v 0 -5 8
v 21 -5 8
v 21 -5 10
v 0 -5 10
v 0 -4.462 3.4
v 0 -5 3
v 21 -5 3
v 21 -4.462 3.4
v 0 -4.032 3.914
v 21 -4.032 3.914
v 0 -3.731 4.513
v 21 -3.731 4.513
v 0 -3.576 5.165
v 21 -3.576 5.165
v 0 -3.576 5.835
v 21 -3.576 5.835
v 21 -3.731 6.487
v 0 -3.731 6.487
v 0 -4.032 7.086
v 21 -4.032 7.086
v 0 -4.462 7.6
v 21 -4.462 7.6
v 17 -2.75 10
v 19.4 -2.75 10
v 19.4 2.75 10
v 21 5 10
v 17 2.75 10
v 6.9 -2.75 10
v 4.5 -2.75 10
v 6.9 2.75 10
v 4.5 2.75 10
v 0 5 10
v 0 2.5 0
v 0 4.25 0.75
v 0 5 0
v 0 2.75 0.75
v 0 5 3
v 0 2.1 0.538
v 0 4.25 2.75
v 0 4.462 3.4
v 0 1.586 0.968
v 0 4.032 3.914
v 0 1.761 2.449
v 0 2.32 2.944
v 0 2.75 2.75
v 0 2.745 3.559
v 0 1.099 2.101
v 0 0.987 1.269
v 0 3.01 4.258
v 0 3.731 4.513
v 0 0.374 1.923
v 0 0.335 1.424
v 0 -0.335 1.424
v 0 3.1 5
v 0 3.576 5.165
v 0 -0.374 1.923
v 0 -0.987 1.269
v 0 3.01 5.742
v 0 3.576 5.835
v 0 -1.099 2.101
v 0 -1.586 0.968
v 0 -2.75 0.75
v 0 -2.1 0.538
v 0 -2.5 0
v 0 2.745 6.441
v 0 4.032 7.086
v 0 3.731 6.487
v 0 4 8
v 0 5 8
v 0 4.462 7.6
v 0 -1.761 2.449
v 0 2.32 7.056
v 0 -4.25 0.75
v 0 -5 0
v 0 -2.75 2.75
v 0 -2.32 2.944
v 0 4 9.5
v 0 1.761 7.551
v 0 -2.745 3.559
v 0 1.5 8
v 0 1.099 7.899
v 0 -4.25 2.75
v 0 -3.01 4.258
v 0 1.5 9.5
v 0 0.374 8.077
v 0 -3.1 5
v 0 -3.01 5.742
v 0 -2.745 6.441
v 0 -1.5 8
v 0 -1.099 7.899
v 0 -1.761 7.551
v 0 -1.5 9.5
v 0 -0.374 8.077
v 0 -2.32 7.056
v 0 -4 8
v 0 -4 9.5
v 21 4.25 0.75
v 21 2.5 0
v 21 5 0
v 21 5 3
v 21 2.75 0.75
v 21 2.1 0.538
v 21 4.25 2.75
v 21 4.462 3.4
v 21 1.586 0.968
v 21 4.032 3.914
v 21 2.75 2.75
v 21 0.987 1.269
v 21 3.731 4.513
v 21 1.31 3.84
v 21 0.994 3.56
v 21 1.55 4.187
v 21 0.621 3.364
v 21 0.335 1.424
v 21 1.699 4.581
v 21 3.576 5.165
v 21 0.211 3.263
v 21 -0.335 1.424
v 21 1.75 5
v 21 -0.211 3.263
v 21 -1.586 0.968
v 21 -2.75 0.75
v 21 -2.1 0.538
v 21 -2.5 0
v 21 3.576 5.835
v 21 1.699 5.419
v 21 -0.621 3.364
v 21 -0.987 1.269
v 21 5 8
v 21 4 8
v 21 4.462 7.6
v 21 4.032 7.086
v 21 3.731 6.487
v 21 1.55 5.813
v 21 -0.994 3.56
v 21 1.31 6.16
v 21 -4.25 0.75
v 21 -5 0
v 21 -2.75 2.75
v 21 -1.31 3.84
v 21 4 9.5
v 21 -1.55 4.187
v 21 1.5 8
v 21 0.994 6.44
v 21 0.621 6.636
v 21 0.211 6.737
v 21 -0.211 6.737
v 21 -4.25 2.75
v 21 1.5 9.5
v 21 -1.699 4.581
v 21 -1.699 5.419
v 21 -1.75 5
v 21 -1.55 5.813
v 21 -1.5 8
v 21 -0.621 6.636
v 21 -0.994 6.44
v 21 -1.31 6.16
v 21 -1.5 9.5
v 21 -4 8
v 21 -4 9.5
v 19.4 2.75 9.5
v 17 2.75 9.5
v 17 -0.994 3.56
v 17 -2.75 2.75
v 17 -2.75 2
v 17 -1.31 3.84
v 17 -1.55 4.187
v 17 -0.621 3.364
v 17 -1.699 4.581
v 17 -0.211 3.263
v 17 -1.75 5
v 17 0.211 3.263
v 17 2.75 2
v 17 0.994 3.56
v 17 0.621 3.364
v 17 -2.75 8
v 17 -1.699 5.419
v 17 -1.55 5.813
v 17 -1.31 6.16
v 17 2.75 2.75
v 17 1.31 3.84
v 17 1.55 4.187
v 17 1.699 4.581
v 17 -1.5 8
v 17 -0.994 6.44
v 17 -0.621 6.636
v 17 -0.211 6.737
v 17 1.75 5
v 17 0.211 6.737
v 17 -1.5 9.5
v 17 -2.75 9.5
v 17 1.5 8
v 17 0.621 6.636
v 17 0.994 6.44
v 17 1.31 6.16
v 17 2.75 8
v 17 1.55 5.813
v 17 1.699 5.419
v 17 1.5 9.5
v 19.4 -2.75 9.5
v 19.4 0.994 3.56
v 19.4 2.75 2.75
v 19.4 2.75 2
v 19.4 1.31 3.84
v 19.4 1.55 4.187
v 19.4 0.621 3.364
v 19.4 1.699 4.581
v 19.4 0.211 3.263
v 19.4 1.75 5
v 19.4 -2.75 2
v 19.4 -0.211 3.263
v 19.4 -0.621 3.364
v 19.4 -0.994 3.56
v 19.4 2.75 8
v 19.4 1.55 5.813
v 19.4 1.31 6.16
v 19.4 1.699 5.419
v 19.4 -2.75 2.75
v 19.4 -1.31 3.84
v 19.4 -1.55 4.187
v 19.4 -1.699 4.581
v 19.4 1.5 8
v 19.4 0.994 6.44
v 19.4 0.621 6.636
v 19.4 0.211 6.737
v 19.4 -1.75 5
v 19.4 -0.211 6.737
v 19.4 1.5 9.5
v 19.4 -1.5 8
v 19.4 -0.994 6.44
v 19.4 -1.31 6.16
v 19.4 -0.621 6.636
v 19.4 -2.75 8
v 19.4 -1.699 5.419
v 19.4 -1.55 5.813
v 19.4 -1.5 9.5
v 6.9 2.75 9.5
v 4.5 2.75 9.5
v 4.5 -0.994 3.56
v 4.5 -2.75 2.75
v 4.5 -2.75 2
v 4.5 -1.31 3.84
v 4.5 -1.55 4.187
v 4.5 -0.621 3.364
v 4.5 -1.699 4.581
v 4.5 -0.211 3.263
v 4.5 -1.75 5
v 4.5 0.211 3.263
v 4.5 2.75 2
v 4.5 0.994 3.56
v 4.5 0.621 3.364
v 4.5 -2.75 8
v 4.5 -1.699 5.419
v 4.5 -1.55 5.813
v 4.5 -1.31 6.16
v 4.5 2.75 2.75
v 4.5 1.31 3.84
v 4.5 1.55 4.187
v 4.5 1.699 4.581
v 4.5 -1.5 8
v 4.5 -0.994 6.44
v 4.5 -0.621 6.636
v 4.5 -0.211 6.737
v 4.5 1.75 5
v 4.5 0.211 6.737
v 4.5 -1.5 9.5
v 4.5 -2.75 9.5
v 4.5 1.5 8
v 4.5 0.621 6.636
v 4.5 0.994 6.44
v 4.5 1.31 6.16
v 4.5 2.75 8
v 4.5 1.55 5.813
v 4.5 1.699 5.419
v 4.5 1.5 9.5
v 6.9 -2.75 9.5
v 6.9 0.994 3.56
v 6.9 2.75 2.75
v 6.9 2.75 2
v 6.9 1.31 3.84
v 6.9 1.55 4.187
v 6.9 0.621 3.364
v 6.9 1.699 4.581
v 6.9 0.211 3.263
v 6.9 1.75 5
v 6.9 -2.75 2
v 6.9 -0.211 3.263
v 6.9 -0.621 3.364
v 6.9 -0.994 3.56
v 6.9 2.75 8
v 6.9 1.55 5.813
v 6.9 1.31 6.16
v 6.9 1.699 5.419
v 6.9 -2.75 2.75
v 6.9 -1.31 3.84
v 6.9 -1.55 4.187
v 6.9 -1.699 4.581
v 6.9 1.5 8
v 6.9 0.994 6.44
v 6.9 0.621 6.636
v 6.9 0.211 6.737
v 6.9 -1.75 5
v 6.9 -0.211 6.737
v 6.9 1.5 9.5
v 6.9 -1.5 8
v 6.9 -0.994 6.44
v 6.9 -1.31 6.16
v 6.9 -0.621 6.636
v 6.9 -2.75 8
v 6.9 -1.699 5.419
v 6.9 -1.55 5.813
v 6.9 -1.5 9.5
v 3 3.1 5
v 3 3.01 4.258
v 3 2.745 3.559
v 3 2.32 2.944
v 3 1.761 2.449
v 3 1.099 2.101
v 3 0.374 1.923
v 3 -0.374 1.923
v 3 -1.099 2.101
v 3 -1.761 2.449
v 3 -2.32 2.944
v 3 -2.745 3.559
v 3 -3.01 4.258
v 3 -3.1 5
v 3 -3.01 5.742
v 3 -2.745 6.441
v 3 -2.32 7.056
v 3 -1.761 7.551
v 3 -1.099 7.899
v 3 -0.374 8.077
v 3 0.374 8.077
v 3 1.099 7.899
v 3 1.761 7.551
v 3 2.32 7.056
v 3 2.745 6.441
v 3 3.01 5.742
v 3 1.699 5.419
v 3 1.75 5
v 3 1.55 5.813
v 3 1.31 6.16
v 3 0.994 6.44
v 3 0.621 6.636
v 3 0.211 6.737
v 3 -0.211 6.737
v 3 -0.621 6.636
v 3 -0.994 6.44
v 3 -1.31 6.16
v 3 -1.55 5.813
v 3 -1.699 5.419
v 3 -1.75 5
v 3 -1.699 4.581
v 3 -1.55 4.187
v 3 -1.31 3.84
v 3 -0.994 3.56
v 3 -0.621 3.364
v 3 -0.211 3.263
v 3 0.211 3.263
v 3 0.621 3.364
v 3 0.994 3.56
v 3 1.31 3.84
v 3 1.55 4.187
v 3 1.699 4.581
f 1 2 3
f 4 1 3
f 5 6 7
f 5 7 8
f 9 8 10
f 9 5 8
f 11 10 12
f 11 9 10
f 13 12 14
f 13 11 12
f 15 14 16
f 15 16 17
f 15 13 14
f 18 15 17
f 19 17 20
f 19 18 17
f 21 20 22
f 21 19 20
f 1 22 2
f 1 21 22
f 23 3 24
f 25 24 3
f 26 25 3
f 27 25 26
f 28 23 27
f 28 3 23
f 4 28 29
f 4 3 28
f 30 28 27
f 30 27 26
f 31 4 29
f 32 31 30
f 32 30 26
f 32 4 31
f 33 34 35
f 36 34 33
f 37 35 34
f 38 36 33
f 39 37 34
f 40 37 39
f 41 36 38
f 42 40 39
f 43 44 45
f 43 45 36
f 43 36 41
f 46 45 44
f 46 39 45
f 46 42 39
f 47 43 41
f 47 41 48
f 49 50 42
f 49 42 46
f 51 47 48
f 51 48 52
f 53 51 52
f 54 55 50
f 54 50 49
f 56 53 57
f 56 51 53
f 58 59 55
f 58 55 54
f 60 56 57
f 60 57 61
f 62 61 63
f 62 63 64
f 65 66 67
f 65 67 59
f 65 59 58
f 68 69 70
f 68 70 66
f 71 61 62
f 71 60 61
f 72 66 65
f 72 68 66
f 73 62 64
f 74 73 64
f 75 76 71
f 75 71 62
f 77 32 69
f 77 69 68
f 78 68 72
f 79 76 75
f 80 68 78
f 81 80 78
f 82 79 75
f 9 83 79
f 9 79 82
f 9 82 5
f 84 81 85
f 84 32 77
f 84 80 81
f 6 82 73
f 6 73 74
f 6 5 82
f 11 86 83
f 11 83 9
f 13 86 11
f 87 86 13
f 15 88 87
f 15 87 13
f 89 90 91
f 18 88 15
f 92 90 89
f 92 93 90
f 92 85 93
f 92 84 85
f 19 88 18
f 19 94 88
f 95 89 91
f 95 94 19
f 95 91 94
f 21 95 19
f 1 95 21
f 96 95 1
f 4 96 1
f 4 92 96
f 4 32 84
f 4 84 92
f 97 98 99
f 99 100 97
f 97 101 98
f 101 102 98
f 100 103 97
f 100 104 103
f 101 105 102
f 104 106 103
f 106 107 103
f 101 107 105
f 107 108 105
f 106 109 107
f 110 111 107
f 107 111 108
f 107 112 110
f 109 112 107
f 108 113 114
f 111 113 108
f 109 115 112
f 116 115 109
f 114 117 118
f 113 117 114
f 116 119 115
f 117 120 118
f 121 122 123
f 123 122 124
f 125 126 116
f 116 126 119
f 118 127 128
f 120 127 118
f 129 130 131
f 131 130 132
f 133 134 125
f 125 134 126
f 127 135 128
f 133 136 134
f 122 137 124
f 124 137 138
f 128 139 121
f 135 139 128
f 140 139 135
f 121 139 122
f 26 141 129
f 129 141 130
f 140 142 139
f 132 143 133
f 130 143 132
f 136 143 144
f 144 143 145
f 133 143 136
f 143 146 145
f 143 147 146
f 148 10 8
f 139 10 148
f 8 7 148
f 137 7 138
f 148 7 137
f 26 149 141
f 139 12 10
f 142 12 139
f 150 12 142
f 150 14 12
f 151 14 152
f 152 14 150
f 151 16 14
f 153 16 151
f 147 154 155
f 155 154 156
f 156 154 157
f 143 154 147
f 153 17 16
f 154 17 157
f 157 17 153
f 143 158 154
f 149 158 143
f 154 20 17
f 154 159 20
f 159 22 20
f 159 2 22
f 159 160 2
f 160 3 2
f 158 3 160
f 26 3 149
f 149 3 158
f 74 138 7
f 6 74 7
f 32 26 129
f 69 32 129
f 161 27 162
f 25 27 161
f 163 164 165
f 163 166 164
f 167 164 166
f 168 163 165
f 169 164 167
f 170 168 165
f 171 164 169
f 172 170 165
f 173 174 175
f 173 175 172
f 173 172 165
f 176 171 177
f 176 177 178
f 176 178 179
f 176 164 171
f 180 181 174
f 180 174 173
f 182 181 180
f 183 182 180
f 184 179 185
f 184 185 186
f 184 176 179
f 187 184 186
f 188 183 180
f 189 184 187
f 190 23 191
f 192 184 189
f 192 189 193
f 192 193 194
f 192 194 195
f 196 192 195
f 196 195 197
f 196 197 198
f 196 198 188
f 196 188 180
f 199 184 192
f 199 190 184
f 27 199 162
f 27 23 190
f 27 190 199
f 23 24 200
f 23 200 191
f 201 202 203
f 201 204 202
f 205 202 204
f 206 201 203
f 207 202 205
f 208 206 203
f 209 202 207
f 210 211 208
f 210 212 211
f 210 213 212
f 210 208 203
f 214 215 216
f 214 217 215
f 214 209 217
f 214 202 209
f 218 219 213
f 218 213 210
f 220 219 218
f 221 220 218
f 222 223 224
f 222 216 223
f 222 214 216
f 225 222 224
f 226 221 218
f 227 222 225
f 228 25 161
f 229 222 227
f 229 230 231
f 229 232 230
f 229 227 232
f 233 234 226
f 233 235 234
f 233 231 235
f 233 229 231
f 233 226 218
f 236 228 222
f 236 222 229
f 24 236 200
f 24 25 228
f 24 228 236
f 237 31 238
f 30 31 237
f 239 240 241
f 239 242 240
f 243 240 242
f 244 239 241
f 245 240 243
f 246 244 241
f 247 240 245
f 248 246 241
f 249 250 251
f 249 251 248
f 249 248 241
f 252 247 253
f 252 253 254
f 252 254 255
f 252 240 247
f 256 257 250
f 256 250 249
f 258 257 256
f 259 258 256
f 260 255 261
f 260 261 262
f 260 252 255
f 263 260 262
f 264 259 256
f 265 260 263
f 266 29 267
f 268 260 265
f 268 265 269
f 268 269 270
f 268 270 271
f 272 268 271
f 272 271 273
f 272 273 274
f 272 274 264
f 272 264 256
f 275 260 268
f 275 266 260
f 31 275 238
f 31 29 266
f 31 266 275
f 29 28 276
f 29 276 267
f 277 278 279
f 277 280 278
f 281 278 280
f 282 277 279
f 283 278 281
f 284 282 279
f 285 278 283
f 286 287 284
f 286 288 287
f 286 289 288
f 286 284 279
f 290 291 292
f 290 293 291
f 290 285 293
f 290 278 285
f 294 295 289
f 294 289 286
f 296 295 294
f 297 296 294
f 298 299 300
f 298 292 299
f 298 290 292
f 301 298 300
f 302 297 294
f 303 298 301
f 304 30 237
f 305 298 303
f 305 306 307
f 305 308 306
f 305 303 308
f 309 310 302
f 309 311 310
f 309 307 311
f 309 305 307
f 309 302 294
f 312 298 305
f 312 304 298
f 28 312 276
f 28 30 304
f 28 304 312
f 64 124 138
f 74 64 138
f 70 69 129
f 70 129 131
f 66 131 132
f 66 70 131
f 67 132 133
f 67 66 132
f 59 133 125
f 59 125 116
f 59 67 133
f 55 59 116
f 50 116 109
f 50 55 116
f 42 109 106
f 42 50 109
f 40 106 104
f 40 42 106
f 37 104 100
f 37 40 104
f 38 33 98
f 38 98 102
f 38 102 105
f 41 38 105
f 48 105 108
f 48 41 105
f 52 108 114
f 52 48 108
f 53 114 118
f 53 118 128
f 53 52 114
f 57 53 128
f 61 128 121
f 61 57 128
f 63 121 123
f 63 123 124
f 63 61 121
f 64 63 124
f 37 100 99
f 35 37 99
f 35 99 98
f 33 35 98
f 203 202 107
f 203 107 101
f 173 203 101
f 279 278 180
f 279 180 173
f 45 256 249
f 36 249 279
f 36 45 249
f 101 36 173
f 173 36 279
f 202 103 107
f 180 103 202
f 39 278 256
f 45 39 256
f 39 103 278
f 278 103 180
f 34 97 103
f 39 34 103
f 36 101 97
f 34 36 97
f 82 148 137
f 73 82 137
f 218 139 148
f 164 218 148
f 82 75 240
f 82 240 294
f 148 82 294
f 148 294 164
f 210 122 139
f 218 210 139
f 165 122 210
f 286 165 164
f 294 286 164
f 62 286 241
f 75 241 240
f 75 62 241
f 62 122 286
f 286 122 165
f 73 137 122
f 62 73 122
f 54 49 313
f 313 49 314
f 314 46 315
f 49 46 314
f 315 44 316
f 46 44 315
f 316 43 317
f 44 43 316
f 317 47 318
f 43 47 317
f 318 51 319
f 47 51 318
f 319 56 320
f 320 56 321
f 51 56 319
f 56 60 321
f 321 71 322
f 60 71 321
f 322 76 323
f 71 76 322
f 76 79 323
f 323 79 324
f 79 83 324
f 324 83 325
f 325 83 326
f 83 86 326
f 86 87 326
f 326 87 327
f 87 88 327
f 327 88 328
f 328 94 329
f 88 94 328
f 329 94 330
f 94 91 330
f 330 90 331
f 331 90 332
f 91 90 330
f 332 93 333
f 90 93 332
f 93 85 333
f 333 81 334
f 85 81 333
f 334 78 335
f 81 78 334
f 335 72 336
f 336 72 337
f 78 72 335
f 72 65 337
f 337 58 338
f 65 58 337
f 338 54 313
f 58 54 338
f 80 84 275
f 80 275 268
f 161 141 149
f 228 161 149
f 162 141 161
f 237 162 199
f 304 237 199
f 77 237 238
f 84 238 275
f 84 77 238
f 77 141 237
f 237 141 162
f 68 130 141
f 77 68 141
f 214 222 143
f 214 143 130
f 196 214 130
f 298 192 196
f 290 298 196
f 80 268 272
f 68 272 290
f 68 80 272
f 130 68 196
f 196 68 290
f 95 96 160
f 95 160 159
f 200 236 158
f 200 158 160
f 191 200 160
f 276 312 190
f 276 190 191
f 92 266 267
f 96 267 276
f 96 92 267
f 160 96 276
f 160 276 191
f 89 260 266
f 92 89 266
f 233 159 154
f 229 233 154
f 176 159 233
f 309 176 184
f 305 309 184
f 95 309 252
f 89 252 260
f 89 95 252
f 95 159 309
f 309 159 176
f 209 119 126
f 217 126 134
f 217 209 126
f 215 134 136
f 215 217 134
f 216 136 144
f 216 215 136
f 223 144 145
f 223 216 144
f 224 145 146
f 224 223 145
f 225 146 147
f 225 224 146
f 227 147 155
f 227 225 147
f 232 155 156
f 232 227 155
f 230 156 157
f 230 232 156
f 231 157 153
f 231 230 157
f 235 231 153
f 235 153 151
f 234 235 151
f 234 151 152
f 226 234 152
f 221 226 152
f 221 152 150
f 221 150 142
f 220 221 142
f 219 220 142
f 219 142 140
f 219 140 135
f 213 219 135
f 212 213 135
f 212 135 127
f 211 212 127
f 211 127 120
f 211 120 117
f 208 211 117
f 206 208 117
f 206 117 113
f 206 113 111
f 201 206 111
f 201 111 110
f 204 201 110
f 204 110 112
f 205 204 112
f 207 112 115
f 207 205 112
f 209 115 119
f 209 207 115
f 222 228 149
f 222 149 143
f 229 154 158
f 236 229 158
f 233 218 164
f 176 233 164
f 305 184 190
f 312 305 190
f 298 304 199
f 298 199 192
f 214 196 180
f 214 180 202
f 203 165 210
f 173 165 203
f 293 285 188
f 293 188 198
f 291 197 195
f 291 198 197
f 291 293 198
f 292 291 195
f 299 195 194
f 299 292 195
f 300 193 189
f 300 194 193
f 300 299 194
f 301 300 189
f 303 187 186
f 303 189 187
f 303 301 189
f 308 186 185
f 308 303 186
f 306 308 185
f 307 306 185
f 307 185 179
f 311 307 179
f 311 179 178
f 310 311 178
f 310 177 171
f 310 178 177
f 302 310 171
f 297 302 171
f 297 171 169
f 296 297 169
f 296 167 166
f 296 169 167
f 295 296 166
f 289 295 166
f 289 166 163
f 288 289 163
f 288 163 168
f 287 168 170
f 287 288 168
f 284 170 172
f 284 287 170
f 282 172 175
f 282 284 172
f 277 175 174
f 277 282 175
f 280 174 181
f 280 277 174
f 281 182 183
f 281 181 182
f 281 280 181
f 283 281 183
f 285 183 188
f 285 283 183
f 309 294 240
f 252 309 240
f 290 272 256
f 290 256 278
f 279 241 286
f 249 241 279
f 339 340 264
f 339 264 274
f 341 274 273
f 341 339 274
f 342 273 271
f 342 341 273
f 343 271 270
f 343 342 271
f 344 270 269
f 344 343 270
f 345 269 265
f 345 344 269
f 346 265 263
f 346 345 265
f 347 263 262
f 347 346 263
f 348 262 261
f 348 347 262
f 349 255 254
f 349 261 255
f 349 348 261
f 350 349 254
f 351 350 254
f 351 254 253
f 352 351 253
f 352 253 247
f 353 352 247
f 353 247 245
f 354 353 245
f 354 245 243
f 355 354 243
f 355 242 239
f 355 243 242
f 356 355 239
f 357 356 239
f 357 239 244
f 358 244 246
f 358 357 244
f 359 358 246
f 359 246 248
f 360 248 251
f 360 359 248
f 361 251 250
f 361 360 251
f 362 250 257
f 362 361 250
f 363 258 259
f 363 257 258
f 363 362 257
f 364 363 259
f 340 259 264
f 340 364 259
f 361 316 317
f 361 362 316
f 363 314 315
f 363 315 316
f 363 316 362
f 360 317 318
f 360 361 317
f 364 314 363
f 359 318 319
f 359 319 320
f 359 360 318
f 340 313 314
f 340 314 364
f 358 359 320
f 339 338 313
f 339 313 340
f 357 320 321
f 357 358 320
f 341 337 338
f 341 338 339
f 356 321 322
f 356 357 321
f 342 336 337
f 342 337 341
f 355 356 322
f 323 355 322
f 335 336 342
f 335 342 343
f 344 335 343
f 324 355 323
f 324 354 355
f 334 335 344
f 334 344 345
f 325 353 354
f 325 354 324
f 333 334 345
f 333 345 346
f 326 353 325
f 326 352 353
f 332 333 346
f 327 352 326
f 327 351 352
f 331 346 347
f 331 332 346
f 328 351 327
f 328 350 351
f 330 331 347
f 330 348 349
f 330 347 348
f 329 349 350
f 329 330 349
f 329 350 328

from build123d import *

# Parameters (mm, degrees)
SKETCH_R        = 1.75
PAD_DEPTH       = 21
SKETCH002_W     = 5.5
SKETCH002_H     = 2.4
POCKET_DEPTH    = 8
SKETCH003_R     = 3.1
POCKET001_DEPTH = 3
SKETCH007_W     = 1.5
SKETCH007_H     = 2
SKETCH007_W_2   = 2.5
SKETCH007_H_2   = 1.5
POCKET002_DEPTH = 21.001


with BuildPart() as part:
    # Sketch → Pad (new body)
    with BuildSketch(Plane.YZ):
        with BuildLine():
            Line((-5, 8), (-5, 10))
            Line((-5, 10), (5, 10))
            Line((5, 10), (5, 8))
            ThreePointArc((5, 8), (3.556624, 5.5), (5, 3))
            Line((5, 3), (5, 0))
            Line((5, 0), (2.5, 0))
            ThreePointArc((2.5, 0), (0, 1.443376), (-2.5, 0))
            Line((-2.5, 0), (-5, 0))
            Line((-5, 0), (-5, 3))
            ThreePointArc((-5, 3), (-3.556624, 5.5), (-5, 8))
        make_face()
        with Locations((0, 5)):
            Circle(SKETCH_R, mode=Mode.SUBTRACT)
    extrude(amount=PAD_DEPTH)

    # Sketch002 → Pocket (cut)
    with BuildSketch(Plane(origin=(0, 0, 10), x_dir=(0, -1, 0), z_dir=(0, 0, 1))):
        with Locations((0, 5.7)):
            Rectangle(SKETCH002_W, SKETCH002_H)
        with Locations((0, 18.2)):
            Rectangle(SKETCH002_W, SKETCH002_H)
    extrude(amount=-POCKET_DEPTH, mode=Mode.SUBTRACT)

    # Sketch003 (on Face4 of Pocket) → Pocket001 (cut)
    with BuildSketch(Plane(origin=(0, 0, 0), x_dir=(0, 1, 0), z_dir=(-1, 0, 0))):
        with Locations((0, -5)):
            Circle(SKETCH003_R)
    extrude(amount=-POCKET001_DEPTH, mode=Mode.SUBTRACT)

    # Sketch007 (on Face4 of Pocket001) → Pocket002 (cut, through all)
    with BuildSketch(Plane(origin=(0, 0, 0), x_dir=(0, 1, 0), z_dir=(-1, 0, 0))):
        with Locations((-3.5, -1.75)):
            Rectangle(SKETCH007_W, SKETCH007_H)
        with Locations((3.5, -1.75)):
            Rectangle(SKETCH007_W, SKETCH007_H)
        with Locations((-2.75, -8.75)):
            Rectangle(SKETCH007_W_2, SKETCH007_H_2)
        with Locations((2.75, -8.75)):
            Rectangle(SKETCH007_W_2, SKETCH007_H_2)
    extrude(amount=-POCKET002_DEPTH, mode=Mode.SUBTRACT)


solid = part.part
